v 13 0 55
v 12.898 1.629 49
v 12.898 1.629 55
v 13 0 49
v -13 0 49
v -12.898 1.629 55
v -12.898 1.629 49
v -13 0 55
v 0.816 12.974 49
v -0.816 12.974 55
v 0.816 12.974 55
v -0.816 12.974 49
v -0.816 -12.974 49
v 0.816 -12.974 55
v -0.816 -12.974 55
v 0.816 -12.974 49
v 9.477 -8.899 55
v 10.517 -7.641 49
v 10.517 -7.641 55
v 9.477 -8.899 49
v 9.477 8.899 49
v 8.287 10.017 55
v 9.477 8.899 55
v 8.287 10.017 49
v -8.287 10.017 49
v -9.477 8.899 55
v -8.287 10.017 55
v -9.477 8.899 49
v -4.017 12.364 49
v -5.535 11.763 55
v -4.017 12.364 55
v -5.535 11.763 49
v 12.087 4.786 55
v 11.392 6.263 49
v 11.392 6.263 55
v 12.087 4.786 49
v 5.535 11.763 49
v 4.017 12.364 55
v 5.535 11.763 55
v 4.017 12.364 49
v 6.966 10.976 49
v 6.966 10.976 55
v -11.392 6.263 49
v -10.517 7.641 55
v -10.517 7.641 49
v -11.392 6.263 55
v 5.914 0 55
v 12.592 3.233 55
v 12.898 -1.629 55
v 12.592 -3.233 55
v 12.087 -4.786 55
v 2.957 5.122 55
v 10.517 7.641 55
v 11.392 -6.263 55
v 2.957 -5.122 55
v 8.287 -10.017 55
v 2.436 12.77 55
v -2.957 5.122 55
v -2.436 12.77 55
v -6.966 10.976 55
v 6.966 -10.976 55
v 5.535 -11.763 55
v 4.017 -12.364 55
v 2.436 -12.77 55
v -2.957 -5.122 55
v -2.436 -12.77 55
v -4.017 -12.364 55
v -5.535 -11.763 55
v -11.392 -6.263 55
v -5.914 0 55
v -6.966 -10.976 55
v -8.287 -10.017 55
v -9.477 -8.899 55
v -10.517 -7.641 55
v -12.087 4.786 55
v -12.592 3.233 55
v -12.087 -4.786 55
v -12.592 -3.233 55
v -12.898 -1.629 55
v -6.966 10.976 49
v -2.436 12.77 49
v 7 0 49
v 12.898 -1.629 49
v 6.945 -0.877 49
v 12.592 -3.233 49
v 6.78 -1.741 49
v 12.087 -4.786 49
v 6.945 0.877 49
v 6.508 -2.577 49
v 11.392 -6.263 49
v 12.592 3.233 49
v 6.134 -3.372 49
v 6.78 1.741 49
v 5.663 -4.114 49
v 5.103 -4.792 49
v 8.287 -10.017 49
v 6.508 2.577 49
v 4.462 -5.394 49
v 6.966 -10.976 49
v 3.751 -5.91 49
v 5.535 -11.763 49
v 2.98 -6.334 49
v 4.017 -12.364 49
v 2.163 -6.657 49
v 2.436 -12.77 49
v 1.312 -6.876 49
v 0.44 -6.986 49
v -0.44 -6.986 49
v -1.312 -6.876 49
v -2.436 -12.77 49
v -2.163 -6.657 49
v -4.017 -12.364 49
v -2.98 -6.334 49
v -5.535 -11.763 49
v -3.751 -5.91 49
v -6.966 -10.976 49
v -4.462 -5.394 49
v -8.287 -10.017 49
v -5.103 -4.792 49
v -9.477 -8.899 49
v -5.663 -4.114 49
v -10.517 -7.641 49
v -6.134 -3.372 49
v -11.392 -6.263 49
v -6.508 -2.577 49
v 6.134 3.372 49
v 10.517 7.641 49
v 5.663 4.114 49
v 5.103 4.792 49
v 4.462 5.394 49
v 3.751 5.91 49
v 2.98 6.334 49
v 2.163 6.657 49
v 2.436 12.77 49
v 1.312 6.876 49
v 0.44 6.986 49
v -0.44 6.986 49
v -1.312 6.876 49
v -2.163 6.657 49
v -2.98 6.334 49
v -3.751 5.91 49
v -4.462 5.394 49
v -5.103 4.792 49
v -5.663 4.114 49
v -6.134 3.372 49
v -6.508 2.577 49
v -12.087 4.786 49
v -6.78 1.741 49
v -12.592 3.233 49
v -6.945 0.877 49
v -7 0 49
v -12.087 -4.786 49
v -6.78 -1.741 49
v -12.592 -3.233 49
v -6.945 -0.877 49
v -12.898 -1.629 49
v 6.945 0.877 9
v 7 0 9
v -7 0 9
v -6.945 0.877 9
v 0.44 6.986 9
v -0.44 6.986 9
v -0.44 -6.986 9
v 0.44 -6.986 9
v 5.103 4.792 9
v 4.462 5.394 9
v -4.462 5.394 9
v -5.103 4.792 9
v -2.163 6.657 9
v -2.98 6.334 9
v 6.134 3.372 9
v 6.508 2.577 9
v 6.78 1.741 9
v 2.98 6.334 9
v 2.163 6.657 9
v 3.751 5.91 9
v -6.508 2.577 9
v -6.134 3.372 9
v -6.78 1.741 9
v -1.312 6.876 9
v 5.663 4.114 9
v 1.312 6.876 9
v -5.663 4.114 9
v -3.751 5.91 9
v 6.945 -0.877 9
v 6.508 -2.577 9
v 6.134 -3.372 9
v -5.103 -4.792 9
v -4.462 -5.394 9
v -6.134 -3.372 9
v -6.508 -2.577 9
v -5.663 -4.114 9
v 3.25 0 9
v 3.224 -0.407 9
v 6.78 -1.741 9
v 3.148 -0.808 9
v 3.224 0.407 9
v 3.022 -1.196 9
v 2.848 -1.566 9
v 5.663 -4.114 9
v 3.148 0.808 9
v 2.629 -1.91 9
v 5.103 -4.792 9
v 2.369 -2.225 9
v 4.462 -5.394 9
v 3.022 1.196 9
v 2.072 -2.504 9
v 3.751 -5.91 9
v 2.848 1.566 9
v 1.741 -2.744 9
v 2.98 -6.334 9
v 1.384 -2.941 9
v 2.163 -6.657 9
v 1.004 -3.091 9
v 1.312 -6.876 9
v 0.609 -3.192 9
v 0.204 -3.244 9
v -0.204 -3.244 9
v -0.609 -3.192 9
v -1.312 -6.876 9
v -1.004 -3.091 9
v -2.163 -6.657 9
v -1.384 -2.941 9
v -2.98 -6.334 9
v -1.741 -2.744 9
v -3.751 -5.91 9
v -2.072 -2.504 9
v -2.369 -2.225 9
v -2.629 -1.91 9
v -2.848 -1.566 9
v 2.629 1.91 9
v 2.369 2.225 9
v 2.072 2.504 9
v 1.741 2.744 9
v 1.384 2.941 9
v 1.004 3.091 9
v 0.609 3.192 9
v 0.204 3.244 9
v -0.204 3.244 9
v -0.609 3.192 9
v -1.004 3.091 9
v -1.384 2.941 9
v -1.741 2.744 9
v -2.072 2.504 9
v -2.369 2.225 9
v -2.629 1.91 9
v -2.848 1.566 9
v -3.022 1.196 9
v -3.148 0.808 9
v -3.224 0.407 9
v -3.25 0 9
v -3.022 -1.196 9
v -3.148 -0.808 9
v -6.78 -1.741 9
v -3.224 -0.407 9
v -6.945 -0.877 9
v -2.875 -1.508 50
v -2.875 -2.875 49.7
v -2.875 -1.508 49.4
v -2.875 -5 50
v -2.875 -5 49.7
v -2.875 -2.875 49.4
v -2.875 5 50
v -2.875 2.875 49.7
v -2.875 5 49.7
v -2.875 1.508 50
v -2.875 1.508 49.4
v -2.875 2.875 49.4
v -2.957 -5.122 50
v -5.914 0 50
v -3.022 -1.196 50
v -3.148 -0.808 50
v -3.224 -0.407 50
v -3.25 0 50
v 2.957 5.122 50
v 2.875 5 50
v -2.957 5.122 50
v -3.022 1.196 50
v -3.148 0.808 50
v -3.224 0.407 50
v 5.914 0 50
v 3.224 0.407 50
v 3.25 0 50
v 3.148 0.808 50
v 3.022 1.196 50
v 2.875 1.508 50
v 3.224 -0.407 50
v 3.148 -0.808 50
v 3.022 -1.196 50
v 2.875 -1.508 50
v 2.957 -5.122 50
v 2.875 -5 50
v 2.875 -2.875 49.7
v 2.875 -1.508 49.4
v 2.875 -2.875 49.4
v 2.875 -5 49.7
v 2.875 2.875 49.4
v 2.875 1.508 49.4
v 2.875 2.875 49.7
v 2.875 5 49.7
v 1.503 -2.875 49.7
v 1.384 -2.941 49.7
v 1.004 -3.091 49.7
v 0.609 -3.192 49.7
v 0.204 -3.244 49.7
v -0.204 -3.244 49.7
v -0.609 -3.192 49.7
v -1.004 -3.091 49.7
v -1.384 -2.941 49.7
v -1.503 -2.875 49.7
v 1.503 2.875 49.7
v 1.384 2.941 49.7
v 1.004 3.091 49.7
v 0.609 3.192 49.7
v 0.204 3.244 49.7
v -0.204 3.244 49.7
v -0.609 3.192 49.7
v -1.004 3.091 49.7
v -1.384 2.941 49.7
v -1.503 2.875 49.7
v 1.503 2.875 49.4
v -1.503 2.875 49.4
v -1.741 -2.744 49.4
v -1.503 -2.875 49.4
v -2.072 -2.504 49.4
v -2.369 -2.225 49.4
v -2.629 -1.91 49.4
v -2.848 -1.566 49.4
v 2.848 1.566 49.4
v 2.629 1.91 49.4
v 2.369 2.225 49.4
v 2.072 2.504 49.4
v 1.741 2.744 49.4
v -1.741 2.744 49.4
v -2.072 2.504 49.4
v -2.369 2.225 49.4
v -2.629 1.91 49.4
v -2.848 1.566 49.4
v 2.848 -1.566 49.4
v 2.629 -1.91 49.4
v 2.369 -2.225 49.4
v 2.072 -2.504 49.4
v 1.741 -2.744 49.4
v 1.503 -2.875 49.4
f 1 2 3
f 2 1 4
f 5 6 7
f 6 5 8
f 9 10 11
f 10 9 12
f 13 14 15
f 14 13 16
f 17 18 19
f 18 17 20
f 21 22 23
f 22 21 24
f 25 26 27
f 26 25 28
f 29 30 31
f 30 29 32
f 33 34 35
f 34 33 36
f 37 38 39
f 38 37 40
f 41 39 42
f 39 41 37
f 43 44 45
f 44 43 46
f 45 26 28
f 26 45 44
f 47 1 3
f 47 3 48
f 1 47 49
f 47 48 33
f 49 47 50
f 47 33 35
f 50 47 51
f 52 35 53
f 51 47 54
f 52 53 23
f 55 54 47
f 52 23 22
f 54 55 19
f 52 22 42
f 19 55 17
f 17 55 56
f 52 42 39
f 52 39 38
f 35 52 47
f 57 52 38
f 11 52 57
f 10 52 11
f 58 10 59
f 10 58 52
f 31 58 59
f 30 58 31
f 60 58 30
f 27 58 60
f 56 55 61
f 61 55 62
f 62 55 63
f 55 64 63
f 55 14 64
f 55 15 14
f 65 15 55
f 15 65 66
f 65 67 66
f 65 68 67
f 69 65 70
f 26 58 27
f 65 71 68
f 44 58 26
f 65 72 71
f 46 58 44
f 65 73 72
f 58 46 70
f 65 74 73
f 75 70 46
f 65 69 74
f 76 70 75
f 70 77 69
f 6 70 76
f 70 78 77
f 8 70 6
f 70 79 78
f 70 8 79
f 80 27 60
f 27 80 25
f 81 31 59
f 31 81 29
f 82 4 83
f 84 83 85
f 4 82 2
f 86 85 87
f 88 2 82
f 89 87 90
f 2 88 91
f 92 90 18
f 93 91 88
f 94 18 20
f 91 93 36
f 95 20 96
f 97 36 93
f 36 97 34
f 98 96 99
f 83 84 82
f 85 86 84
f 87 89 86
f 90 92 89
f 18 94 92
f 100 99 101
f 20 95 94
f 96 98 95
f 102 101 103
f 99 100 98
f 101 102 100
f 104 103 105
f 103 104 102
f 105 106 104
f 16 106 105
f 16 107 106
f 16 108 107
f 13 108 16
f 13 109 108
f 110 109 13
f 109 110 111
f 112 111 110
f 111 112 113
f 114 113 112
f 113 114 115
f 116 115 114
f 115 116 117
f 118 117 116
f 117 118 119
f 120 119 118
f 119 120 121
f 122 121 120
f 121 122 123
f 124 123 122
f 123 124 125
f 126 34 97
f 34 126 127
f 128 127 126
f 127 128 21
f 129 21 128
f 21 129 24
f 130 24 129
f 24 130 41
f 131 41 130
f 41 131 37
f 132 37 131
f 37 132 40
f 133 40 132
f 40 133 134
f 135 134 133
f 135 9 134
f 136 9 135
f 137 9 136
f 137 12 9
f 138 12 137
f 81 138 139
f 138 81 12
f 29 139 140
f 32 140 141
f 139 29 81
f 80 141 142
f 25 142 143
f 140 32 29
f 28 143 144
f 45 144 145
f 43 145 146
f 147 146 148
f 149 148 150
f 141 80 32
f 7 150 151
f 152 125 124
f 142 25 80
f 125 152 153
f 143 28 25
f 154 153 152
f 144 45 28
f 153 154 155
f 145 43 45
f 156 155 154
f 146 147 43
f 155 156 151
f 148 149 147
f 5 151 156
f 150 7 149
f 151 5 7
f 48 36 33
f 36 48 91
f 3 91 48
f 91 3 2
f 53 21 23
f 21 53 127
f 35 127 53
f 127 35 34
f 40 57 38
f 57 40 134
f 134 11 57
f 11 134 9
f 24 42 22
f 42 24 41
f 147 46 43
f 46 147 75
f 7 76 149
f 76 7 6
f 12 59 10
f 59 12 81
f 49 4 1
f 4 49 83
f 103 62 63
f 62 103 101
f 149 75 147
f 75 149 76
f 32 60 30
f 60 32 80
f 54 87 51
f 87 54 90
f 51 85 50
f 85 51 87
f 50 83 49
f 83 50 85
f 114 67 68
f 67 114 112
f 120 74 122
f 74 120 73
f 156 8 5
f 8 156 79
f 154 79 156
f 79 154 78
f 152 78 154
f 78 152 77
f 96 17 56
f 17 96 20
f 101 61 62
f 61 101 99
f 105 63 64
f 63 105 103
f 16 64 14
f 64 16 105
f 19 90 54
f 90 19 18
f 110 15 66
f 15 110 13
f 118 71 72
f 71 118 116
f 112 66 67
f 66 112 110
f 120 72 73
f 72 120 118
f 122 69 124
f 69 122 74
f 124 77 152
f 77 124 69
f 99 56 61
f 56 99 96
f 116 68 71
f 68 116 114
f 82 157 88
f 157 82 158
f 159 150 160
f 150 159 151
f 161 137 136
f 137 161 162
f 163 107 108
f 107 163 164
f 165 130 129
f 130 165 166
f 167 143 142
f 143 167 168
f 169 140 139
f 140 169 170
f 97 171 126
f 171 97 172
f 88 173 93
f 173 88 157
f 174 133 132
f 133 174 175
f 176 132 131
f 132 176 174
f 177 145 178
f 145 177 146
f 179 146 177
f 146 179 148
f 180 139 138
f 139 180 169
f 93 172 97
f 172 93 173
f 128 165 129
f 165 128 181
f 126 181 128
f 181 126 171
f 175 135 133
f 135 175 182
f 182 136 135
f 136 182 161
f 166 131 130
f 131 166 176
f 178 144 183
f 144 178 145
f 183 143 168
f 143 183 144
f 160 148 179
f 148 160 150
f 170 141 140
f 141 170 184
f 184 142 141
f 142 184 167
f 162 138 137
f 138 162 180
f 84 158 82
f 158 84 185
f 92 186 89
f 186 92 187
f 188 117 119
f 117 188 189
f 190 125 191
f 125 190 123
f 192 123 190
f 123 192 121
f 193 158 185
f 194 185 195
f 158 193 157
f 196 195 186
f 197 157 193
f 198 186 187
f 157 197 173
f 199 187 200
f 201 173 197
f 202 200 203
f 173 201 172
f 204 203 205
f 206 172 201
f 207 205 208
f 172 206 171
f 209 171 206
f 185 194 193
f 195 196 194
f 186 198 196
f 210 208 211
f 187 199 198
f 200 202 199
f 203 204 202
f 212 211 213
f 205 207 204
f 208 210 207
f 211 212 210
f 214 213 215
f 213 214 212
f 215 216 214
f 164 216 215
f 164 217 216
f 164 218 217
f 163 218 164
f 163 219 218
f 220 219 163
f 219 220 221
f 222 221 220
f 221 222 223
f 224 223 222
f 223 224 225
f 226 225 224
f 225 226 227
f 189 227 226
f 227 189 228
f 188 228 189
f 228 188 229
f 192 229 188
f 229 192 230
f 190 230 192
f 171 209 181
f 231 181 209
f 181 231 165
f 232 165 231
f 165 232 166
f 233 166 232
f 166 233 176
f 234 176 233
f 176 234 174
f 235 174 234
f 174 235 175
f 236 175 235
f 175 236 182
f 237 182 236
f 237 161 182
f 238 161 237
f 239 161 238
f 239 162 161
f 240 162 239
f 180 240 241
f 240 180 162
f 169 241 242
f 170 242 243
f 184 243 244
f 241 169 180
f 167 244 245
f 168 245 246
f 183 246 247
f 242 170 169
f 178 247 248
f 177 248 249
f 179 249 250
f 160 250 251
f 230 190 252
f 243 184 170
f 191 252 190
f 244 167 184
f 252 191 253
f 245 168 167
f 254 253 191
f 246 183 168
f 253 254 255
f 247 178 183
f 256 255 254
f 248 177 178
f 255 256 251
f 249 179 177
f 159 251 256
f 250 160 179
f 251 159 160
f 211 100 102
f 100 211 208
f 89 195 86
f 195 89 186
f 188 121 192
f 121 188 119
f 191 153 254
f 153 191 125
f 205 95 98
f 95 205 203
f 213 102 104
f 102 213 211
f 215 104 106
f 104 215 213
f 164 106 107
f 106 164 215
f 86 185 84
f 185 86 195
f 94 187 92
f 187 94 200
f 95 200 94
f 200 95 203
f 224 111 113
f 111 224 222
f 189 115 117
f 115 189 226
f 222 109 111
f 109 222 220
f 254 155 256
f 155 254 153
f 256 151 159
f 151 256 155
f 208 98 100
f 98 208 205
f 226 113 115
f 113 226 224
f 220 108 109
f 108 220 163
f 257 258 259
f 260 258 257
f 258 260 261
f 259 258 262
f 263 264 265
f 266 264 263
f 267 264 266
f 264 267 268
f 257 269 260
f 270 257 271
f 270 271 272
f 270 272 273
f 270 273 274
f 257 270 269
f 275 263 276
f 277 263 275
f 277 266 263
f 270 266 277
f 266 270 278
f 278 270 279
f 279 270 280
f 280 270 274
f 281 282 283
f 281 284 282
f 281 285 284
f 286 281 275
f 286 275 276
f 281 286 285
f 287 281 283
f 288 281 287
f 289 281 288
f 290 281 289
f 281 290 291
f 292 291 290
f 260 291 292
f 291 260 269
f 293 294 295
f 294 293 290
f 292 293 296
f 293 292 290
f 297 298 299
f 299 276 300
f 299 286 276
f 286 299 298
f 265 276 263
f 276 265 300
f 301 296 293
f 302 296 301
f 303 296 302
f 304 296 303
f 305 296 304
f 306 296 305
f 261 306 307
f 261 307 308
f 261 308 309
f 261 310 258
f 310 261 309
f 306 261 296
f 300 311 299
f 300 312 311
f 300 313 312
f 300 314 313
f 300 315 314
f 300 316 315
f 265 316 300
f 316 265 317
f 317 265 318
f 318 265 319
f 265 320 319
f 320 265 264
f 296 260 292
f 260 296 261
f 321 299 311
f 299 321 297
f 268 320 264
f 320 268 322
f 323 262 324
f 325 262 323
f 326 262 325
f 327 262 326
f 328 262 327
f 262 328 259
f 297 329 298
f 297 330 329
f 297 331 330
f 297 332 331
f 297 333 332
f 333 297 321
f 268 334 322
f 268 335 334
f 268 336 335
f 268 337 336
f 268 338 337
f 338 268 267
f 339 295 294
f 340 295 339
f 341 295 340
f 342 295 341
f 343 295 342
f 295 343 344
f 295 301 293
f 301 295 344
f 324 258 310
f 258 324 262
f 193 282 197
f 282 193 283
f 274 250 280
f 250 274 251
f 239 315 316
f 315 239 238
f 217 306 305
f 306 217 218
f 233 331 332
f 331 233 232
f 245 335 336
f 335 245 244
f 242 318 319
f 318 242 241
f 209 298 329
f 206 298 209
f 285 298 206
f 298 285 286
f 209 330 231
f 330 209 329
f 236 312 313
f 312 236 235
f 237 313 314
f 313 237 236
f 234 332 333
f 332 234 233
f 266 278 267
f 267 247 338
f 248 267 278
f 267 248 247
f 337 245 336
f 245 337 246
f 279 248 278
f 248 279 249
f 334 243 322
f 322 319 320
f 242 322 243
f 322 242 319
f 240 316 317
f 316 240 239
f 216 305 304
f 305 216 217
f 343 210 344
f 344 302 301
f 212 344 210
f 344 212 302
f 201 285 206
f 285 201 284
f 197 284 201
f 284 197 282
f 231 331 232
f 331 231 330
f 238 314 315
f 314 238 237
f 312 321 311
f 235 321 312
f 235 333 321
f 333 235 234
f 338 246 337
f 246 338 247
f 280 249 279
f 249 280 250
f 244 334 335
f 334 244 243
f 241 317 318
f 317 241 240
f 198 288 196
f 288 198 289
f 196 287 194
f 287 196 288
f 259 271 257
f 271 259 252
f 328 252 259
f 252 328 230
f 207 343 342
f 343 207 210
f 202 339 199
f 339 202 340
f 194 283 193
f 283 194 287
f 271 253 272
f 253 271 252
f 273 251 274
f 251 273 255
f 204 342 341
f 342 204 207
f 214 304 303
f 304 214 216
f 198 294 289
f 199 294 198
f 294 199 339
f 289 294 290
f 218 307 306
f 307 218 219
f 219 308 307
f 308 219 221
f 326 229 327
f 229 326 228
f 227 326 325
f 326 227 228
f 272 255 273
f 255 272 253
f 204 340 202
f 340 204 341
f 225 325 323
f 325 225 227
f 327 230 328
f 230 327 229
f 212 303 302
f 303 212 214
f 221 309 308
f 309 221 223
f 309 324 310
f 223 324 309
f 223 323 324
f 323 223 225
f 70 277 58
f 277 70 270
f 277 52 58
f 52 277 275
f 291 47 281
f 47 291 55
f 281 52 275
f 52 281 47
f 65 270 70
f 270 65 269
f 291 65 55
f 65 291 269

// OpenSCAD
$fn = 50;


difference() {
	union() {
		translate(v = [0, 0, 49.0000000000]) {
			cylinder(h = 6, r = 13.0000000000);
		}
		translate(v = [0, 0, 9.0000000000]) {
			cylinder(h = 46, r = 7.0000000000);
		}
	}
	union() {
		translate(v = [0, 0, 55]) {
			rotate(a = [0, 0, 0]) {
				difference() {
					union() {
						#translate(v = [-2.8750000000, -5.0000000000, -5.3000000000]) {
							cube(size = [5.7500000000, 10, 0.3000000000]);
						}
						#translate(v = [-2.8750000000, -2.8750000000, -5.6000000000]) {
							cube(size = [5.7500000000, 5.7500000000, 0.3000000000]);
						}
						#translate(v = [-2.8750000000, -5.0000000000, 0]) {
							cube(size = [5.7500000000, 10, 0.3000000000]);
						}
						#translate(v = [-2.8750000000, -2.8750000000, 0.3000000000]) {
							cube(size = [5.7500000000, 5.7500000000, 0.3000000000]);
						}
						#translate(v = [0, 0, -100.0000000000]) {
							cylinder(h = 200, r = 3.2500000000);
						}
						translate(v = [0, 0, -5]) {
							#linear_extrude(height = 5) {
								polygon(points = [[5.9142500000, 0.0000000000], [2.9571250000, 5.1218907443], [-2.9571250000, 5.1218907443], [-5.9142500000, 0.0000000000], [-2.9571250000, -5.1218907443], [2.9571250000, -5.1218907443]]);
							}
						}
						#translate(v = [-2.8750000000, -5.0000000000, -5.3000000000]) {
							cube(size = [5.7500000000, 10, 0.3000000000]);
						}
						#translate(v = [-2.8750000000, -2.8750000000, -5.6000000000]) {
							cube(size = [5.7500000000, 5.7500000000, 0.3000000000]);
						}
						#translate(v = [-2.8750000000, -5.0000000000, 0]) {
							cube(size = [5.7500000000, 10, 0.3000000000]);
						}
						#translate(v = [-2.8750000000, -2.8750000000, 0.3000000000]) {
							cube(size = [5.7500000000, 5.7500000000, 0.3000000000]);
						}
						#translate(v = [0, 0, -100.0000000000]) {
							cylinder(h = 200, r = 3.2500000000);
						}
						#translate(v = [-2.8750000000, -5.0000000000, -5.3000000000]) {
							cube(size = [5.7500000000, 10, 0.3000000000]);
						}
						#translate(v = [-2.8750000000, -2.8750000000, -5.6000000000]) {
							cube(size = [5.7500000000, 5.7500000000, 0.3000000000]);
						}
						#translate(v = [-2.8750000000, -5.0000000000, 0]) {
							cube(size = [5.7500000000, 10, 0.3000000000]);
						}
						#translate(v = [-2.8750000000, -2.8750000000, 0.3000000000]) {
							cube(size = [5.7500000000, 5.7500000000, 0.3000000000]);
						}
						#translate(v = [0, 0, -100.0000000000]) {
							cylinder(h = 200, r = 3.2500000000);
						}
					}
					union();
				}
			}
		}
		#translate(v = [0, 0, -100.0000000000]) {
			cylinder(h = 200, r = 3.2500000000);
		}
	}
}
